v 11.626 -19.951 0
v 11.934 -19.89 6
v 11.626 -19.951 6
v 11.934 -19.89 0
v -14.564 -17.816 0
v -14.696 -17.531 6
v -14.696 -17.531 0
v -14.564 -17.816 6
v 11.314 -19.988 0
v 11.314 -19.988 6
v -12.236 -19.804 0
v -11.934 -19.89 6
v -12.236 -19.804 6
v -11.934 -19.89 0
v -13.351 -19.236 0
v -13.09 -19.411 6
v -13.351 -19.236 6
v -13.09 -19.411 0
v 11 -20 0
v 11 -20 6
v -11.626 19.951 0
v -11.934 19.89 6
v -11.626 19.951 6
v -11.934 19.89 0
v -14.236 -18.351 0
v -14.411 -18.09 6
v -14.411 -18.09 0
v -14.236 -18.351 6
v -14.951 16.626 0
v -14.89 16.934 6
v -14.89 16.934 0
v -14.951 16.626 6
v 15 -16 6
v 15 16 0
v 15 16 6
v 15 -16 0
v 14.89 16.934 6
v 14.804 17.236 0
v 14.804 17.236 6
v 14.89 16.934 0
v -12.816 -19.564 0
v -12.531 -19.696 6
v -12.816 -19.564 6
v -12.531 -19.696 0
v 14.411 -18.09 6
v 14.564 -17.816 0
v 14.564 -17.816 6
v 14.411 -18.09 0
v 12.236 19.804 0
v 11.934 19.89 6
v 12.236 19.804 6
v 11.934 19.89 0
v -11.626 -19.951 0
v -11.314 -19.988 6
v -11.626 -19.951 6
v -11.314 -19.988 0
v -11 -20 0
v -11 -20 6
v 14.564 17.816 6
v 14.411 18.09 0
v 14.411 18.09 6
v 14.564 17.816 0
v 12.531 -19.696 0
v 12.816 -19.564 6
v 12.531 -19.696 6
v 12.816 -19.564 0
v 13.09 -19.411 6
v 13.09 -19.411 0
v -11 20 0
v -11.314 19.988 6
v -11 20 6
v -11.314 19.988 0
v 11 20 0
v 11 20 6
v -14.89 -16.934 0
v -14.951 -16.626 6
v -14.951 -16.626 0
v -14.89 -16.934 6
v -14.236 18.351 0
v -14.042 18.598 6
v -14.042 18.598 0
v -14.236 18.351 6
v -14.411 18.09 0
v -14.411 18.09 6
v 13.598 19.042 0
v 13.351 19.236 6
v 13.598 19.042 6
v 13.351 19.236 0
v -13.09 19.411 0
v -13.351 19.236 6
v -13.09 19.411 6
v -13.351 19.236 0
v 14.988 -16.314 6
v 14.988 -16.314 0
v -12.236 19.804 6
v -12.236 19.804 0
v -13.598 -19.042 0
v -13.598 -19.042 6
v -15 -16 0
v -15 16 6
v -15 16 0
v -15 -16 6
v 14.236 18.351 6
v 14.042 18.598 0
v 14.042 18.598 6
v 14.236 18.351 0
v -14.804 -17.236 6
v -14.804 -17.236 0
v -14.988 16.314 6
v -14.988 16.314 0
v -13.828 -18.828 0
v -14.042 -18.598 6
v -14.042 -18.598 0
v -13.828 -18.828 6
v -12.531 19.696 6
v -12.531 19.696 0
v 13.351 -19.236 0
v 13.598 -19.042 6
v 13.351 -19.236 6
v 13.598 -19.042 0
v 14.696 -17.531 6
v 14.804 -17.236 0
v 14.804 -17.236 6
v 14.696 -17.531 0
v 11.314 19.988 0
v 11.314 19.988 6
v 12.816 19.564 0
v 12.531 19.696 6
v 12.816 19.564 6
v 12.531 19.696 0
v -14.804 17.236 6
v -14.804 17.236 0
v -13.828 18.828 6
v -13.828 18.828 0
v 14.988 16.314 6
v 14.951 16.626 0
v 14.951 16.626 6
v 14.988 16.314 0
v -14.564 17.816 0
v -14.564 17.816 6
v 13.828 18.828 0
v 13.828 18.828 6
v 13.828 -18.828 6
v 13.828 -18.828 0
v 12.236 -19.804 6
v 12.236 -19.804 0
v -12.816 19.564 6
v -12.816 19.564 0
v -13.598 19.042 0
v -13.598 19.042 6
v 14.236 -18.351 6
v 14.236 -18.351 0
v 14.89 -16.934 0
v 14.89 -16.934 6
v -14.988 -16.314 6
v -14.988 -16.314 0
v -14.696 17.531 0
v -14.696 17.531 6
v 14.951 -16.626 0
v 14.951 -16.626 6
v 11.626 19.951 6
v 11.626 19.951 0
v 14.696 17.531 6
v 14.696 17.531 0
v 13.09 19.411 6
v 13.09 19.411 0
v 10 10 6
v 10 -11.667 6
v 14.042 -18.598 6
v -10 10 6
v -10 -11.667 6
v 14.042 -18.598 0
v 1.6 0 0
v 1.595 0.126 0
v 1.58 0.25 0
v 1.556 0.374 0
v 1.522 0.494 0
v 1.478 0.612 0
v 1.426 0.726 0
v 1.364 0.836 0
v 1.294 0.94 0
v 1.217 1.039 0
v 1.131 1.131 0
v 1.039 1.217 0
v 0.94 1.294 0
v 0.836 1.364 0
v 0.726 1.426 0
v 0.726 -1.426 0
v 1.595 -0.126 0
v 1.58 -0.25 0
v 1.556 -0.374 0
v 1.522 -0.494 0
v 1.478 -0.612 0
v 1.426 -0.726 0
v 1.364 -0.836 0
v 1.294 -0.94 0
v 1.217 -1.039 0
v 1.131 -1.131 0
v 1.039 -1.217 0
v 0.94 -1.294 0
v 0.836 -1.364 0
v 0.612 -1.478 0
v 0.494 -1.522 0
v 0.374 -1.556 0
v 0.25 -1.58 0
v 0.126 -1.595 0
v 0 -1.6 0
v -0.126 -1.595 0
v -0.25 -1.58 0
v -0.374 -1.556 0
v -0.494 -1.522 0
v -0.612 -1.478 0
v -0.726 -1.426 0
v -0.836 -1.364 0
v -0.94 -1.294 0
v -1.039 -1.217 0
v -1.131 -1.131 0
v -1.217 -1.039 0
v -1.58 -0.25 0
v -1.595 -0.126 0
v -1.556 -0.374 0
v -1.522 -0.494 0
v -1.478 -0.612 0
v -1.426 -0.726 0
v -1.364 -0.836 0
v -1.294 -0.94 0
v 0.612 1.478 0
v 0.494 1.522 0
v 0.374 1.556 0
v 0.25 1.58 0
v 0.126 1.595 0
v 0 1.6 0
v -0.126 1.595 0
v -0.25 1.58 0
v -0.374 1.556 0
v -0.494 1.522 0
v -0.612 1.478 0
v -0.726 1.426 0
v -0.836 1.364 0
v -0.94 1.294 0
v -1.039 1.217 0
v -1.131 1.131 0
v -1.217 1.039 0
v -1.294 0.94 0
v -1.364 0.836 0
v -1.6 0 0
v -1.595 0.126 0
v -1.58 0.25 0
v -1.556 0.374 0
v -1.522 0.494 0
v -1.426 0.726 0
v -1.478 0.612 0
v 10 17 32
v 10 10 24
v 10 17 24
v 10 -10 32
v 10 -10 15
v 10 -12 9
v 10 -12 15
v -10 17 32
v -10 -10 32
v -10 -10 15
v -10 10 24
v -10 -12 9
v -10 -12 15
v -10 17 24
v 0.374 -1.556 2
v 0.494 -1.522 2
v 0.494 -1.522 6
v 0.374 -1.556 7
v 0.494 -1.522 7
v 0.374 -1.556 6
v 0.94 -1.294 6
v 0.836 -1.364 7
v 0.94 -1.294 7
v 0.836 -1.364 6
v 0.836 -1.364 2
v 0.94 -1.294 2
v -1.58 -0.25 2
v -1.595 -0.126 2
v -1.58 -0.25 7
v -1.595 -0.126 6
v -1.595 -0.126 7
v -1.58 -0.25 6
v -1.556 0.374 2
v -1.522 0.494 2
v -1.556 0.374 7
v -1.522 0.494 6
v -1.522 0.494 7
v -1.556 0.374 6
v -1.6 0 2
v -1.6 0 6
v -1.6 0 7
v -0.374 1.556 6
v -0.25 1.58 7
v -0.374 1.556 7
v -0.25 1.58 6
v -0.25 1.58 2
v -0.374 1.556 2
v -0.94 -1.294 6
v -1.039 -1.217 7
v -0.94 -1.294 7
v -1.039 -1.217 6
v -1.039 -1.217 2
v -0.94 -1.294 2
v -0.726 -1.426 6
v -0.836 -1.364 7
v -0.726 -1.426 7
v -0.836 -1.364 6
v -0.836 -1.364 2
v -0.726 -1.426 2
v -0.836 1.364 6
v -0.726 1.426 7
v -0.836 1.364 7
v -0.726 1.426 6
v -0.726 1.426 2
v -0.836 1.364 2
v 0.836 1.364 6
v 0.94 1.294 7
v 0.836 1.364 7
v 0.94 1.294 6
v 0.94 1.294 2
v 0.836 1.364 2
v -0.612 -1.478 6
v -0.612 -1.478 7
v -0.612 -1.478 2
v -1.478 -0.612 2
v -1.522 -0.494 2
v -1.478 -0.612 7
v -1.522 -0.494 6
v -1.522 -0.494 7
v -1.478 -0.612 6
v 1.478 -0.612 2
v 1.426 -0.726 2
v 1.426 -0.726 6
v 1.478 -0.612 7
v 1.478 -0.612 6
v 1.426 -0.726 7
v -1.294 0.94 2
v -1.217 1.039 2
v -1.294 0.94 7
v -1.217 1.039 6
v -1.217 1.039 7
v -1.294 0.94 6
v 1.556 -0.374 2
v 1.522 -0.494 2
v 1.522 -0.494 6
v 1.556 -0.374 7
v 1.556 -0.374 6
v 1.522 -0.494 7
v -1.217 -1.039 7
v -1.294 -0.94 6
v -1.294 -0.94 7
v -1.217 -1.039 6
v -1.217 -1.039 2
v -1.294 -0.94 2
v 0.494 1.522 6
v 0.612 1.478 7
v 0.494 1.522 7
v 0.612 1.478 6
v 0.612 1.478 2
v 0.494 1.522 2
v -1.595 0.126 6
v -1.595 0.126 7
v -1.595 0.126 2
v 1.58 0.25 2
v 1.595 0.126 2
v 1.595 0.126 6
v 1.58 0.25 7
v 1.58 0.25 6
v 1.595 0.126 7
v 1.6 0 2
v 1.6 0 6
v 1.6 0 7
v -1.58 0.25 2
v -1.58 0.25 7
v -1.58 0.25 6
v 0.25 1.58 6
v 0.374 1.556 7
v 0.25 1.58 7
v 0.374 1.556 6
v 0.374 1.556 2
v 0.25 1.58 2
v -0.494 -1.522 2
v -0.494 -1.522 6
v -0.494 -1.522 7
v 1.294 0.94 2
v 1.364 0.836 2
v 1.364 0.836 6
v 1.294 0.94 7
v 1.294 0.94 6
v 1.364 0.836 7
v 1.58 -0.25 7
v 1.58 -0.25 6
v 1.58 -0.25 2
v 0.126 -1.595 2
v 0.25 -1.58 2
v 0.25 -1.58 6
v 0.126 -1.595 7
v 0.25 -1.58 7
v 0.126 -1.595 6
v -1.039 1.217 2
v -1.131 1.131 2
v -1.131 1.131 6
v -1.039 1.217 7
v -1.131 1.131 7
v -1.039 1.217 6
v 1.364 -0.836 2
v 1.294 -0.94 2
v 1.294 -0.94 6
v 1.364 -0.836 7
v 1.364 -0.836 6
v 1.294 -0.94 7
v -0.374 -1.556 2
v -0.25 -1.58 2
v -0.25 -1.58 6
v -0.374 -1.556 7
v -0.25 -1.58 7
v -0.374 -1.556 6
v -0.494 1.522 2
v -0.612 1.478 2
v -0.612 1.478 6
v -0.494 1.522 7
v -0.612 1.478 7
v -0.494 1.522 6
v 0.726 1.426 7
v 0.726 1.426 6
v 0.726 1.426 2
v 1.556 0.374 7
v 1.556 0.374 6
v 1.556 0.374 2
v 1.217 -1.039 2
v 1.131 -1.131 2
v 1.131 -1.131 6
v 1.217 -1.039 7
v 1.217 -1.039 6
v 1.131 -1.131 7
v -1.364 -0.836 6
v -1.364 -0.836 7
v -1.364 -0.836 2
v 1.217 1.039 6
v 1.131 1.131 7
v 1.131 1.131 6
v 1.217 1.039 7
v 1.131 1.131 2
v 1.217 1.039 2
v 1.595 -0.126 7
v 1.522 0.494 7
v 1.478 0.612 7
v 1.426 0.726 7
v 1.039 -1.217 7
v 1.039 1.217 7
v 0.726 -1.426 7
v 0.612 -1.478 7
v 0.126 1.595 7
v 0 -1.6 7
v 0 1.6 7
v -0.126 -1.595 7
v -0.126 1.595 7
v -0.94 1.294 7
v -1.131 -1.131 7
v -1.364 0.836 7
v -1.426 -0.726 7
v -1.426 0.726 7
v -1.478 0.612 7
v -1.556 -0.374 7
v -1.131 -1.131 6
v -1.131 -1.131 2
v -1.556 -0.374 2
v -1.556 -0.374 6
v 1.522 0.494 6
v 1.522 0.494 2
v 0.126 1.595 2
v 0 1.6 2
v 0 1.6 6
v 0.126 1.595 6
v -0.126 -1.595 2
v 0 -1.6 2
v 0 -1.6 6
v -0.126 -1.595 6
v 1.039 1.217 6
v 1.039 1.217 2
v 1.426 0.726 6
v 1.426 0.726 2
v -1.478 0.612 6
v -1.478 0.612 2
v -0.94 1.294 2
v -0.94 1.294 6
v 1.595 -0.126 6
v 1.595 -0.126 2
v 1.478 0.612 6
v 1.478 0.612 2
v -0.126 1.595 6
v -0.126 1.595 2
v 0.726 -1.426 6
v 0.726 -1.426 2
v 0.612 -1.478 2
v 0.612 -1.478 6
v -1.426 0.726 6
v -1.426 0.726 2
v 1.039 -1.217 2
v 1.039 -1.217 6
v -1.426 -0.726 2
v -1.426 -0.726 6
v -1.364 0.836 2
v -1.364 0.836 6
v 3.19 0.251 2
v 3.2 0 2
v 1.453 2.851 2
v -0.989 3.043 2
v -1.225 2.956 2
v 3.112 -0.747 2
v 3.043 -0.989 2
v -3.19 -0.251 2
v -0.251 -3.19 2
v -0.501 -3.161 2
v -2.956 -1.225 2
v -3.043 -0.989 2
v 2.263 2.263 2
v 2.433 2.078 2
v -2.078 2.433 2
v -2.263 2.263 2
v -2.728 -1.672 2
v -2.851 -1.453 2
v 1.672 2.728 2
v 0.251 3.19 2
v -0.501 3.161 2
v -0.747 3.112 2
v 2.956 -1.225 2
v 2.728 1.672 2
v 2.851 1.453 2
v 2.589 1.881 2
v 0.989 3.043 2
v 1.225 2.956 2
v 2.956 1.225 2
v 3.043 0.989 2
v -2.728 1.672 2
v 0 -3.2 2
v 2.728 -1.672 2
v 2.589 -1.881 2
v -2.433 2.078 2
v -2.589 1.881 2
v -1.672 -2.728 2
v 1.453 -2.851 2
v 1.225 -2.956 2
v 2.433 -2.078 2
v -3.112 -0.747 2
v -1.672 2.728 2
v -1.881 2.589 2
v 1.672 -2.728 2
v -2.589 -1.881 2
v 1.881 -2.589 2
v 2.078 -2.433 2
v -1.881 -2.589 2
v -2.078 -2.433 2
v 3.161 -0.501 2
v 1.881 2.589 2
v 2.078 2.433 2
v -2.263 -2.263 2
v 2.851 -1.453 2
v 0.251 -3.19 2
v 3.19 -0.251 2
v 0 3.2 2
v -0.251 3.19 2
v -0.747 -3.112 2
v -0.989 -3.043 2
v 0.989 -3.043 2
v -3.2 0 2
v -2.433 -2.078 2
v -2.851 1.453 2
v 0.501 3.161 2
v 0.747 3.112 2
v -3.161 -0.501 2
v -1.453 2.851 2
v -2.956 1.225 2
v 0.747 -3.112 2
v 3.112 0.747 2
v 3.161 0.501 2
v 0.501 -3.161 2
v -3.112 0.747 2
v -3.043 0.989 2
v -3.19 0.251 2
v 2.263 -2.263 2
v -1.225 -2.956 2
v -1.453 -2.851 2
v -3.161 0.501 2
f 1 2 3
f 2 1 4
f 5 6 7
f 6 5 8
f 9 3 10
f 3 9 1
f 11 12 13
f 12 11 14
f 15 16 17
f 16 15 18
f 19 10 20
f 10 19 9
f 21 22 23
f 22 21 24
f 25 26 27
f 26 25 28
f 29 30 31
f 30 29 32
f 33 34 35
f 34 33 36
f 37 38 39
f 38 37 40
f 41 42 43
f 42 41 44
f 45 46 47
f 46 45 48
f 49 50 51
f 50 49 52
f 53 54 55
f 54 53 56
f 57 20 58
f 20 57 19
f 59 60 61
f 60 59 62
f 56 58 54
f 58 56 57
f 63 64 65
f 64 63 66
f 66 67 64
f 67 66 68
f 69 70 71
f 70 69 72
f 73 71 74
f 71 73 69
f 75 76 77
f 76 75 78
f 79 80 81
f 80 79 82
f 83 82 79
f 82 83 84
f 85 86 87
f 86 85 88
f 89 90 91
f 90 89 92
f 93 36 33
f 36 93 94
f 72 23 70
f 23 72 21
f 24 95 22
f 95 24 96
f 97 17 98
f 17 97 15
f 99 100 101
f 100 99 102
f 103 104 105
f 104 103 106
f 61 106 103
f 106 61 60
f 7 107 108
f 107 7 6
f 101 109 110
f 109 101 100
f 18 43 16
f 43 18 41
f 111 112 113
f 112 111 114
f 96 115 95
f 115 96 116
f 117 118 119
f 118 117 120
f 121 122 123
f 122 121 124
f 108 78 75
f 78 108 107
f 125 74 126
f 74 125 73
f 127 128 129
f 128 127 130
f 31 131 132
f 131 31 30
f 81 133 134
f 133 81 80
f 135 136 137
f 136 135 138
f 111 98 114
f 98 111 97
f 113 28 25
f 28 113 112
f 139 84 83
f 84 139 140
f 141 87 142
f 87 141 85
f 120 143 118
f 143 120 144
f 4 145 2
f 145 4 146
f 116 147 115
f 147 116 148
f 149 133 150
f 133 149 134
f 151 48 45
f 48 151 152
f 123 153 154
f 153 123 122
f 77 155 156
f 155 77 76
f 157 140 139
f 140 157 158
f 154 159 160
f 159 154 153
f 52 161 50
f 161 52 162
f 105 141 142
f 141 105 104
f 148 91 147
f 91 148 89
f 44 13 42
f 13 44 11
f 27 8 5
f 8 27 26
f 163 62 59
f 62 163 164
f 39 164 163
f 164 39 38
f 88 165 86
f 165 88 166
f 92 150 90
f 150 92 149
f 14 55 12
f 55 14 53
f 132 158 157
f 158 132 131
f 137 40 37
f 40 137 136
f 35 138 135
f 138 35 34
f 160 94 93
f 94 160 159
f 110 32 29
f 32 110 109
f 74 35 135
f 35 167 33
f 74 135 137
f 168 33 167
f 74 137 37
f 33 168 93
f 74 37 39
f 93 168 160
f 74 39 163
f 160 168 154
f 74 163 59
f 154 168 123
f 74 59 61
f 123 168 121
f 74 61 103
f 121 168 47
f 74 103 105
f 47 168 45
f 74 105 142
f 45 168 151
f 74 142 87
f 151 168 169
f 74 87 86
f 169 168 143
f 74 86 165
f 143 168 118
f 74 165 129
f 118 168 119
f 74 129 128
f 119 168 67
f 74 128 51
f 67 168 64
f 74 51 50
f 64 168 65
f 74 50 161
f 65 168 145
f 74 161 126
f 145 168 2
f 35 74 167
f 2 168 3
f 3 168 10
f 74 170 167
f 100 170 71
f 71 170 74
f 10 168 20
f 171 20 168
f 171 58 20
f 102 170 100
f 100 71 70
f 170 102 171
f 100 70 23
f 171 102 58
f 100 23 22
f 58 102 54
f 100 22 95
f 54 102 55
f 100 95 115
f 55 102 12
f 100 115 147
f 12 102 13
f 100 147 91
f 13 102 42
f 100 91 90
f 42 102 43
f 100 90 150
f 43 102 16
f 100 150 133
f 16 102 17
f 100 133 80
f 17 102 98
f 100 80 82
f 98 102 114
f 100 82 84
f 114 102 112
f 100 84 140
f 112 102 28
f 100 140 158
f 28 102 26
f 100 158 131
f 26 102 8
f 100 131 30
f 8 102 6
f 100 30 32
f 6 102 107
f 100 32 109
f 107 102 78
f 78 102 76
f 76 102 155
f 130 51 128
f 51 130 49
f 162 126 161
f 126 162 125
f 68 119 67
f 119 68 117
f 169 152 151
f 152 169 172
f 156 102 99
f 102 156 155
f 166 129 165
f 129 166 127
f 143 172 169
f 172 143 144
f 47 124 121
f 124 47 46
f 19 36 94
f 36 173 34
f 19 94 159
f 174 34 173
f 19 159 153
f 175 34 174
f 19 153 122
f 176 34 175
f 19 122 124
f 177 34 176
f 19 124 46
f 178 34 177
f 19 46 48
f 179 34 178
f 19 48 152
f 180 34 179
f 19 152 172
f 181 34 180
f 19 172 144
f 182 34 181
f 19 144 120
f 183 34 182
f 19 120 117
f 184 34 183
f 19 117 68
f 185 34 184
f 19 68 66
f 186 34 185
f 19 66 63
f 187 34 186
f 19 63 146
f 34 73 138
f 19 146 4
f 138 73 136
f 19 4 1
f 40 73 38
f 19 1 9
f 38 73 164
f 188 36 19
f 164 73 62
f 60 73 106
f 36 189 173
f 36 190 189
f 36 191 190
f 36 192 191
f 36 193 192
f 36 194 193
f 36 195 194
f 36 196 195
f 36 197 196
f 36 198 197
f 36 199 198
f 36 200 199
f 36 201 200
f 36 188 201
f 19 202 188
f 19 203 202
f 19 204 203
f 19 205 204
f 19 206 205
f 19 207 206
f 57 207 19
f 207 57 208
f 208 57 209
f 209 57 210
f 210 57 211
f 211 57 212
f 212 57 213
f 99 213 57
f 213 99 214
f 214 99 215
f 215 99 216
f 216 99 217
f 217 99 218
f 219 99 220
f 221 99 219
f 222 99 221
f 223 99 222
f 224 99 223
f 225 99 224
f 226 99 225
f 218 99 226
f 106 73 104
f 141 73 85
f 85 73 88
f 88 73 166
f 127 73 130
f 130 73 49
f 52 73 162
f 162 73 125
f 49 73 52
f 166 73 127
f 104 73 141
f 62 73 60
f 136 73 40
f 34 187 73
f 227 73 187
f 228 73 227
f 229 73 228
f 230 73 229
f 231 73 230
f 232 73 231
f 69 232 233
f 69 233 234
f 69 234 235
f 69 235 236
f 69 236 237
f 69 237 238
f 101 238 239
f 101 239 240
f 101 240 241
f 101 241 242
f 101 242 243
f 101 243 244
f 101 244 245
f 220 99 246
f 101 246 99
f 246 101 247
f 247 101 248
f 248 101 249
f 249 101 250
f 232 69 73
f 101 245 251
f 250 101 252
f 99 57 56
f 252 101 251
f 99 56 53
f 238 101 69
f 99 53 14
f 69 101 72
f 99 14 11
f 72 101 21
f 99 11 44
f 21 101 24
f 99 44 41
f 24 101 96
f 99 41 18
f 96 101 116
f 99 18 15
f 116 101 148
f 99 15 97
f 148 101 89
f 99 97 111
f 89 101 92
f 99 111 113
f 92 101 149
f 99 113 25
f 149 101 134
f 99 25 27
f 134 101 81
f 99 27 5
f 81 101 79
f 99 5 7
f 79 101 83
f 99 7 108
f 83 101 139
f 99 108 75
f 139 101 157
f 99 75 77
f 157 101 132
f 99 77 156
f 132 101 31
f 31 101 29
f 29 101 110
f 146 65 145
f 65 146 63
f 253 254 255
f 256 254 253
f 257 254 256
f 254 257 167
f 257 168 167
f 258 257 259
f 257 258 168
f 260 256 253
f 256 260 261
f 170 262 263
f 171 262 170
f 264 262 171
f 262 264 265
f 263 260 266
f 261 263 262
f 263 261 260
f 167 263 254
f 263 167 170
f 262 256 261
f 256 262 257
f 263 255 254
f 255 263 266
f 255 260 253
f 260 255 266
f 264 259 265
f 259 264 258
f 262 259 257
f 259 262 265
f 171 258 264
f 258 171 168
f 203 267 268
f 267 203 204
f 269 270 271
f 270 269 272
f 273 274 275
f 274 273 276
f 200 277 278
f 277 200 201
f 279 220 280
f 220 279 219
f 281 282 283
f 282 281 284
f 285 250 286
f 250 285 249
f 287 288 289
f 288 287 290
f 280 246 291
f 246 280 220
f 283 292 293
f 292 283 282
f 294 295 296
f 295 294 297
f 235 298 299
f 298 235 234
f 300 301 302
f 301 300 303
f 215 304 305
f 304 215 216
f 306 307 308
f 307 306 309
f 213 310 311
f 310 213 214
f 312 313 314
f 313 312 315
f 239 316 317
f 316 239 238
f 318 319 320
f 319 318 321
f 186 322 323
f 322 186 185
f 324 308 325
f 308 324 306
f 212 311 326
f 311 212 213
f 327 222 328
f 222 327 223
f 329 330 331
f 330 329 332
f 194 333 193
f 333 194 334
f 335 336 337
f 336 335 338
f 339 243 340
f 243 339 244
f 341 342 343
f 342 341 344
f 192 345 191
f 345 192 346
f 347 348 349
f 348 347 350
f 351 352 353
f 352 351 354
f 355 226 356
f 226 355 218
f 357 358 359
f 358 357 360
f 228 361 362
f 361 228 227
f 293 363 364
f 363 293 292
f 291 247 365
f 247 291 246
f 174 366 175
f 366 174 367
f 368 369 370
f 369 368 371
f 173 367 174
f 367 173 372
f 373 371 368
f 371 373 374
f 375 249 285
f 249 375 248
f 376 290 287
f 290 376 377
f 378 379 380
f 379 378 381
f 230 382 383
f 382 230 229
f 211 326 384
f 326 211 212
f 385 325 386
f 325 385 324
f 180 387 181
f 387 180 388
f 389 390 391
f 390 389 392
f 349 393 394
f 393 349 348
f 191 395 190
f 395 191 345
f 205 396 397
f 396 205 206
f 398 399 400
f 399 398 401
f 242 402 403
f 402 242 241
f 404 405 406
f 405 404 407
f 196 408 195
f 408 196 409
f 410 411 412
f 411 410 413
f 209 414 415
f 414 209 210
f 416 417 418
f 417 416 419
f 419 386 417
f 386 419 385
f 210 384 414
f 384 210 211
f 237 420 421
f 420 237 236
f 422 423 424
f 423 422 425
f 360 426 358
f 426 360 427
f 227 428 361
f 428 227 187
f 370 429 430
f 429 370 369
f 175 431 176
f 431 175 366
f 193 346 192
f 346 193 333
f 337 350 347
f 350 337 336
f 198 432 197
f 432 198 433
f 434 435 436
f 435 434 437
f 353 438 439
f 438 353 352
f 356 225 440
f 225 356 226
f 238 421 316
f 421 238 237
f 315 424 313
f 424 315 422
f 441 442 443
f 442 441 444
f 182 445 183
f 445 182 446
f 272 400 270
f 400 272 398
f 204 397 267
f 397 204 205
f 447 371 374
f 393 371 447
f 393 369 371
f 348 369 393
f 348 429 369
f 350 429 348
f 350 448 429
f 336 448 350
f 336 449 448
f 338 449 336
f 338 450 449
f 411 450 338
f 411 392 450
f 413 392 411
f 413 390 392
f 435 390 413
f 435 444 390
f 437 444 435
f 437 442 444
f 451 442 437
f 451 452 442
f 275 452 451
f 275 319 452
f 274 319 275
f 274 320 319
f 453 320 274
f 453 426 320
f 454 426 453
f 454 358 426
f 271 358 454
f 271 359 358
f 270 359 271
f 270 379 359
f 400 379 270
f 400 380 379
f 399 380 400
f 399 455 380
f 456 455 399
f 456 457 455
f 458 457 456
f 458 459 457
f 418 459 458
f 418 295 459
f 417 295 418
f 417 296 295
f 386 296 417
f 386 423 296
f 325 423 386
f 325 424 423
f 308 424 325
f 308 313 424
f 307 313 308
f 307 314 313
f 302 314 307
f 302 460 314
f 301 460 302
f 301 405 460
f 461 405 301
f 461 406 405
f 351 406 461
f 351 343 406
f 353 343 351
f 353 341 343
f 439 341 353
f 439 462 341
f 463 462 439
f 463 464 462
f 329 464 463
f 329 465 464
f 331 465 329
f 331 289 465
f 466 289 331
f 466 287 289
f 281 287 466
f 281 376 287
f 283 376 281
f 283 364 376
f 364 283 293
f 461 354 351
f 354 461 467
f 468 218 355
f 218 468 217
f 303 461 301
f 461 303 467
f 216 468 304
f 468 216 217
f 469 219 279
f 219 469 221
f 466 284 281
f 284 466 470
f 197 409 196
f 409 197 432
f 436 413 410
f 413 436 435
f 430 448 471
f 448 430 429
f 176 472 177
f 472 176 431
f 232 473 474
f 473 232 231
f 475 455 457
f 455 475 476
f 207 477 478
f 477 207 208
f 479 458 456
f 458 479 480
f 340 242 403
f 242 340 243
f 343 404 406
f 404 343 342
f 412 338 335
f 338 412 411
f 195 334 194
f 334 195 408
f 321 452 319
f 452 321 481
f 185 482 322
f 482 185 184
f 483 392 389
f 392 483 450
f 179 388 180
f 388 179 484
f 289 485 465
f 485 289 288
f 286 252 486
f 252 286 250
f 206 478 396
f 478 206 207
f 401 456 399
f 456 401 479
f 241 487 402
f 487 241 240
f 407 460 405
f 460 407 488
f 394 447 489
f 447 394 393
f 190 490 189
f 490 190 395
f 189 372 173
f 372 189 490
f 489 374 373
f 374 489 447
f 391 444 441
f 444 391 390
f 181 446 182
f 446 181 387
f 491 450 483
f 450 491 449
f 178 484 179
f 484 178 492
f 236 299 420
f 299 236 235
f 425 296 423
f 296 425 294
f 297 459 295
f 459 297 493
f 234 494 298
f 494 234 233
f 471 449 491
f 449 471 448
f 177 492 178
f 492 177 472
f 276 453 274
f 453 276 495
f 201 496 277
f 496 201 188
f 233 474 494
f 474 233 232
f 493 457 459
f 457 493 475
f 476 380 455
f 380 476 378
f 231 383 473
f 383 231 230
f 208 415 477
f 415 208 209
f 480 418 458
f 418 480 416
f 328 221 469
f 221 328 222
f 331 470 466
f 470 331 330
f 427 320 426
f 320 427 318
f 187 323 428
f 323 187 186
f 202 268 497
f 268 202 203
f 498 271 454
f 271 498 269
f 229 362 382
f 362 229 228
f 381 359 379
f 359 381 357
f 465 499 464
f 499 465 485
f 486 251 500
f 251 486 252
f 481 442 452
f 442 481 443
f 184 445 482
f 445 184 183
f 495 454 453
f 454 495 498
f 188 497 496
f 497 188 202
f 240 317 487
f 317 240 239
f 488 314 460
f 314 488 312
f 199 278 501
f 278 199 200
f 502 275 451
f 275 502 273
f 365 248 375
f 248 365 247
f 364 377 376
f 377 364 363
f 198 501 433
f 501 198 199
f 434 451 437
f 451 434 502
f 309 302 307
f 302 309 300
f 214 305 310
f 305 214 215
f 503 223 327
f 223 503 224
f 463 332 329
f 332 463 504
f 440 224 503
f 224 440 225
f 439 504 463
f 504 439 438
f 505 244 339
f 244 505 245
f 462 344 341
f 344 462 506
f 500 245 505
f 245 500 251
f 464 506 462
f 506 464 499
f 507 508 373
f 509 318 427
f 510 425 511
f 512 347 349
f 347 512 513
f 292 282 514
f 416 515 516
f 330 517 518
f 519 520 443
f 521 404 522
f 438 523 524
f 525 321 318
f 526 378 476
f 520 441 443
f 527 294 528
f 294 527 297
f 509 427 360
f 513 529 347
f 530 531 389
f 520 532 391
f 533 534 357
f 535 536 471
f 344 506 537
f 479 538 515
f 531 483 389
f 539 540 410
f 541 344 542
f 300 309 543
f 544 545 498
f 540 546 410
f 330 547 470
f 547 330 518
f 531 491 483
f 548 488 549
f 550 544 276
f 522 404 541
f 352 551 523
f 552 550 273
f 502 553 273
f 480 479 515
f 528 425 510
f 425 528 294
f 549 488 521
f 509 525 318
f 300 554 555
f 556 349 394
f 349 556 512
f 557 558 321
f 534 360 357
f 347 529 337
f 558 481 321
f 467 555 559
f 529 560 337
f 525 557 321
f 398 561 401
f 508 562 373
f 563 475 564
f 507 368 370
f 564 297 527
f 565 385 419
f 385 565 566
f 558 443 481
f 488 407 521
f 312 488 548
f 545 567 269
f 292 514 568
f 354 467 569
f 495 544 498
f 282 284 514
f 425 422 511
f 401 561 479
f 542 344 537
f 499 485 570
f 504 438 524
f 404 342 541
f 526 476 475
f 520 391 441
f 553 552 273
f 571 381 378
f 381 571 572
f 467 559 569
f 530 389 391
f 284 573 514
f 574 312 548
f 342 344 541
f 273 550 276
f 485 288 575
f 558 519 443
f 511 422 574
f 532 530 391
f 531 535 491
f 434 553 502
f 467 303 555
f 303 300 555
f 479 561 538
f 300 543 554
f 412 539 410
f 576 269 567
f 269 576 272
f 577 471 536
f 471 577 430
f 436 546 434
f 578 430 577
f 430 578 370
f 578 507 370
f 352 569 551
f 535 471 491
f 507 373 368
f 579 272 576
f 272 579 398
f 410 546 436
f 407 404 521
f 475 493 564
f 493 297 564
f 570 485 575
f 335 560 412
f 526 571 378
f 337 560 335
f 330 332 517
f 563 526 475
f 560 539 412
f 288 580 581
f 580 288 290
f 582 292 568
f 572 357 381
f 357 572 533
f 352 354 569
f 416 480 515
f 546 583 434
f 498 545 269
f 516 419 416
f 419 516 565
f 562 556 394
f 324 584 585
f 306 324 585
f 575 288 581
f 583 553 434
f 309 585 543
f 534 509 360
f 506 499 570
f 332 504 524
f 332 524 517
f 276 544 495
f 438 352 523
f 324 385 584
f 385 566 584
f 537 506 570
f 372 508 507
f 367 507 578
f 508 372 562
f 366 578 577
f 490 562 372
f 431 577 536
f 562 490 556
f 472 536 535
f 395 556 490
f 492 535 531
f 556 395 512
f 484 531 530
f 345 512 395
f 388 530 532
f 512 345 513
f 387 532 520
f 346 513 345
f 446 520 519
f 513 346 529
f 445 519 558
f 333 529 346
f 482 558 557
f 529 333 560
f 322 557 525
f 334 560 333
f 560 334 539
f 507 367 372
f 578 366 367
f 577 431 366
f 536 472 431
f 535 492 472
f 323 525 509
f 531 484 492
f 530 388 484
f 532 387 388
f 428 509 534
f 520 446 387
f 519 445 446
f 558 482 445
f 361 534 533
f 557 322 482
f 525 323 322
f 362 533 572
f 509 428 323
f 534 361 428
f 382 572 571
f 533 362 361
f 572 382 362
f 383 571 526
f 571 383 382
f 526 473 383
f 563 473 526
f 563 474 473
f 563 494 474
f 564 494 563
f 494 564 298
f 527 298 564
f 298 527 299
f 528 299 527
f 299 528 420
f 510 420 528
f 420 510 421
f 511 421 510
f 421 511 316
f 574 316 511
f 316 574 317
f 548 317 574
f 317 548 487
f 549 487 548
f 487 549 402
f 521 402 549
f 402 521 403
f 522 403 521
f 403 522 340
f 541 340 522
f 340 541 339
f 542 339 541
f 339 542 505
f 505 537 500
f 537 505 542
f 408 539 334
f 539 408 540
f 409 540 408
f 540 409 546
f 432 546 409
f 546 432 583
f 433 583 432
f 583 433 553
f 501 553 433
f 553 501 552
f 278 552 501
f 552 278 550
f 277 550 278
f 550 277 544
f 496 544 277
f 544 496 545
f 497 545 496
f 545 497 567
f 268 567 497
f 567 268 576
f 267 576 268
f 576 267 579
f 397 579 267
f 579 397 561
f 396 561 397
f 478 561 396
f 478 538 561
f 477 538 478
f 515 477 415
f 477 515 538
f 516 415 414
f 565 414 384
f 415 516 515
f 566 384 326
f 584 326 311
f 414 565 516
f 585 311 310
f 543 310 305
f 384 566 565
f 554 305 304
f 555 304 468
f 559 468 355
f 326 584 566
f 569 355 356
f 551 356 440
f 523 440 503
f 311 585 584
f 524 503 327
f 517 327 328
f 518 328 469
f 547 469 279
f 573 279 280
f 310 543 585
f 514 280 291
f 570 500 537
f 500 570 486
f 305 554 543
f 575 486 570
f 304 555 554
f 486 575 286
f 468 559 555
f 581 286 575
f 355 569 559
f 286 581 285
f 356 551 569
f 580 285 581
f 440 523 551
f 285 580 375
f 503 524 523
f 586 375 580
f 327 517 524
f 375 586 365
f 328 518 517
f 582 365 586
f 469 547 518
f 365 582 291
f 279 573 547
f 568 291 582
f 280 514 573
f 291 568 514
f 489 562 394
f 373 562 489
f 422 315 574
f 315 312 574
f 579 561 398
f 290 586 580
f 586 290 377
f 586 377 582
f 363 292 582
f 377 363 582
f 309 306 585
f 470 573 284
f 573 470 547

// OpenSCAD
// Sturdy 3D-printable towel hook with single M3 flat head screw
// Default units: millimeters

// Parameters
plate_width = 30;
plate_height = 40;
plate_thickness = 6;
hook_width = 20; // along X

arm_height = 20;   // Y dimension of main arm
arm_length = 26;   // Z dimension from plate face to near tip
lip_height = 14;   // extra height at tip for retention
lip_depth = 8;     // thickness of lip in Z

screw_shaft_r = 1.6; // M3 clearance
countersink_r = 3.2; // for flat head
countersink_depth = 3;

$fn = 80;

module rounded_rect_xy(w,h,r){
    offset(r) offset(-r) square([w,h], center=true);
}

module plate(){
    linear_extrude(height=plate_thickness)
        rounded_rect_xy(plate_width, plate_height, 4);
}

module screw_hole(){
    translate([0,0,-1]) union(){
        cylinder(h=plate_thickness+2, r=screw_shaft_r);
        translate([0,0,plate_thickness-countersink_depth])
            cylinder(h=countersink_depth+1, r1=countersink_r, r2=screw_shaft_r);
    }
}

module hook_arm(){
    // Main arm: thick block protruding from plate
    translate([0,0,plate_thickness + arm_length/2])
        cube([hook_width, arm_height, arm_length], center=true);
}

module hook_lip(){
    // Upward lip near the end, overlapping well with the arm
    translate([0, arm_height/2, plate_thickness + arm_length - lip_depth/2])
        cube([hook_width, lip_height, lip_depth], center=true);
}

module hook_wedge(){
    // Strengthening/ramping wedge to ease printing under the lip
    hull(){
        translate([0, arm_height/2 - 2, plate_thickness + arm_length - lip_depth])
            cube([hook_width, 4, 4], center=true);
        translate([0, arm_height/2 - 2, plate_thickness + arm_length/2])
            cube([hook_width, 4, 4], center=true);
    }
}

module hook_root(){
    // Extra beef at root to spread load into plate
    hull(){
        translate([0, -arm_height/2 + 2, plate_thickness/2])
            cube([hook_width, 6, plate_thickness], center=true);
        translate([0, -arm_height/2 + 2, plate_thickness + 6])
            cube([hook_width, 8, 6], center=true);
    }
}

module model(){
    difference(){
        union(){
            plate();
            hook_arm();
            hook_lip();
            hook_wedge();
            hook_root();
        }
        screw_hole();
    }
}

model();
